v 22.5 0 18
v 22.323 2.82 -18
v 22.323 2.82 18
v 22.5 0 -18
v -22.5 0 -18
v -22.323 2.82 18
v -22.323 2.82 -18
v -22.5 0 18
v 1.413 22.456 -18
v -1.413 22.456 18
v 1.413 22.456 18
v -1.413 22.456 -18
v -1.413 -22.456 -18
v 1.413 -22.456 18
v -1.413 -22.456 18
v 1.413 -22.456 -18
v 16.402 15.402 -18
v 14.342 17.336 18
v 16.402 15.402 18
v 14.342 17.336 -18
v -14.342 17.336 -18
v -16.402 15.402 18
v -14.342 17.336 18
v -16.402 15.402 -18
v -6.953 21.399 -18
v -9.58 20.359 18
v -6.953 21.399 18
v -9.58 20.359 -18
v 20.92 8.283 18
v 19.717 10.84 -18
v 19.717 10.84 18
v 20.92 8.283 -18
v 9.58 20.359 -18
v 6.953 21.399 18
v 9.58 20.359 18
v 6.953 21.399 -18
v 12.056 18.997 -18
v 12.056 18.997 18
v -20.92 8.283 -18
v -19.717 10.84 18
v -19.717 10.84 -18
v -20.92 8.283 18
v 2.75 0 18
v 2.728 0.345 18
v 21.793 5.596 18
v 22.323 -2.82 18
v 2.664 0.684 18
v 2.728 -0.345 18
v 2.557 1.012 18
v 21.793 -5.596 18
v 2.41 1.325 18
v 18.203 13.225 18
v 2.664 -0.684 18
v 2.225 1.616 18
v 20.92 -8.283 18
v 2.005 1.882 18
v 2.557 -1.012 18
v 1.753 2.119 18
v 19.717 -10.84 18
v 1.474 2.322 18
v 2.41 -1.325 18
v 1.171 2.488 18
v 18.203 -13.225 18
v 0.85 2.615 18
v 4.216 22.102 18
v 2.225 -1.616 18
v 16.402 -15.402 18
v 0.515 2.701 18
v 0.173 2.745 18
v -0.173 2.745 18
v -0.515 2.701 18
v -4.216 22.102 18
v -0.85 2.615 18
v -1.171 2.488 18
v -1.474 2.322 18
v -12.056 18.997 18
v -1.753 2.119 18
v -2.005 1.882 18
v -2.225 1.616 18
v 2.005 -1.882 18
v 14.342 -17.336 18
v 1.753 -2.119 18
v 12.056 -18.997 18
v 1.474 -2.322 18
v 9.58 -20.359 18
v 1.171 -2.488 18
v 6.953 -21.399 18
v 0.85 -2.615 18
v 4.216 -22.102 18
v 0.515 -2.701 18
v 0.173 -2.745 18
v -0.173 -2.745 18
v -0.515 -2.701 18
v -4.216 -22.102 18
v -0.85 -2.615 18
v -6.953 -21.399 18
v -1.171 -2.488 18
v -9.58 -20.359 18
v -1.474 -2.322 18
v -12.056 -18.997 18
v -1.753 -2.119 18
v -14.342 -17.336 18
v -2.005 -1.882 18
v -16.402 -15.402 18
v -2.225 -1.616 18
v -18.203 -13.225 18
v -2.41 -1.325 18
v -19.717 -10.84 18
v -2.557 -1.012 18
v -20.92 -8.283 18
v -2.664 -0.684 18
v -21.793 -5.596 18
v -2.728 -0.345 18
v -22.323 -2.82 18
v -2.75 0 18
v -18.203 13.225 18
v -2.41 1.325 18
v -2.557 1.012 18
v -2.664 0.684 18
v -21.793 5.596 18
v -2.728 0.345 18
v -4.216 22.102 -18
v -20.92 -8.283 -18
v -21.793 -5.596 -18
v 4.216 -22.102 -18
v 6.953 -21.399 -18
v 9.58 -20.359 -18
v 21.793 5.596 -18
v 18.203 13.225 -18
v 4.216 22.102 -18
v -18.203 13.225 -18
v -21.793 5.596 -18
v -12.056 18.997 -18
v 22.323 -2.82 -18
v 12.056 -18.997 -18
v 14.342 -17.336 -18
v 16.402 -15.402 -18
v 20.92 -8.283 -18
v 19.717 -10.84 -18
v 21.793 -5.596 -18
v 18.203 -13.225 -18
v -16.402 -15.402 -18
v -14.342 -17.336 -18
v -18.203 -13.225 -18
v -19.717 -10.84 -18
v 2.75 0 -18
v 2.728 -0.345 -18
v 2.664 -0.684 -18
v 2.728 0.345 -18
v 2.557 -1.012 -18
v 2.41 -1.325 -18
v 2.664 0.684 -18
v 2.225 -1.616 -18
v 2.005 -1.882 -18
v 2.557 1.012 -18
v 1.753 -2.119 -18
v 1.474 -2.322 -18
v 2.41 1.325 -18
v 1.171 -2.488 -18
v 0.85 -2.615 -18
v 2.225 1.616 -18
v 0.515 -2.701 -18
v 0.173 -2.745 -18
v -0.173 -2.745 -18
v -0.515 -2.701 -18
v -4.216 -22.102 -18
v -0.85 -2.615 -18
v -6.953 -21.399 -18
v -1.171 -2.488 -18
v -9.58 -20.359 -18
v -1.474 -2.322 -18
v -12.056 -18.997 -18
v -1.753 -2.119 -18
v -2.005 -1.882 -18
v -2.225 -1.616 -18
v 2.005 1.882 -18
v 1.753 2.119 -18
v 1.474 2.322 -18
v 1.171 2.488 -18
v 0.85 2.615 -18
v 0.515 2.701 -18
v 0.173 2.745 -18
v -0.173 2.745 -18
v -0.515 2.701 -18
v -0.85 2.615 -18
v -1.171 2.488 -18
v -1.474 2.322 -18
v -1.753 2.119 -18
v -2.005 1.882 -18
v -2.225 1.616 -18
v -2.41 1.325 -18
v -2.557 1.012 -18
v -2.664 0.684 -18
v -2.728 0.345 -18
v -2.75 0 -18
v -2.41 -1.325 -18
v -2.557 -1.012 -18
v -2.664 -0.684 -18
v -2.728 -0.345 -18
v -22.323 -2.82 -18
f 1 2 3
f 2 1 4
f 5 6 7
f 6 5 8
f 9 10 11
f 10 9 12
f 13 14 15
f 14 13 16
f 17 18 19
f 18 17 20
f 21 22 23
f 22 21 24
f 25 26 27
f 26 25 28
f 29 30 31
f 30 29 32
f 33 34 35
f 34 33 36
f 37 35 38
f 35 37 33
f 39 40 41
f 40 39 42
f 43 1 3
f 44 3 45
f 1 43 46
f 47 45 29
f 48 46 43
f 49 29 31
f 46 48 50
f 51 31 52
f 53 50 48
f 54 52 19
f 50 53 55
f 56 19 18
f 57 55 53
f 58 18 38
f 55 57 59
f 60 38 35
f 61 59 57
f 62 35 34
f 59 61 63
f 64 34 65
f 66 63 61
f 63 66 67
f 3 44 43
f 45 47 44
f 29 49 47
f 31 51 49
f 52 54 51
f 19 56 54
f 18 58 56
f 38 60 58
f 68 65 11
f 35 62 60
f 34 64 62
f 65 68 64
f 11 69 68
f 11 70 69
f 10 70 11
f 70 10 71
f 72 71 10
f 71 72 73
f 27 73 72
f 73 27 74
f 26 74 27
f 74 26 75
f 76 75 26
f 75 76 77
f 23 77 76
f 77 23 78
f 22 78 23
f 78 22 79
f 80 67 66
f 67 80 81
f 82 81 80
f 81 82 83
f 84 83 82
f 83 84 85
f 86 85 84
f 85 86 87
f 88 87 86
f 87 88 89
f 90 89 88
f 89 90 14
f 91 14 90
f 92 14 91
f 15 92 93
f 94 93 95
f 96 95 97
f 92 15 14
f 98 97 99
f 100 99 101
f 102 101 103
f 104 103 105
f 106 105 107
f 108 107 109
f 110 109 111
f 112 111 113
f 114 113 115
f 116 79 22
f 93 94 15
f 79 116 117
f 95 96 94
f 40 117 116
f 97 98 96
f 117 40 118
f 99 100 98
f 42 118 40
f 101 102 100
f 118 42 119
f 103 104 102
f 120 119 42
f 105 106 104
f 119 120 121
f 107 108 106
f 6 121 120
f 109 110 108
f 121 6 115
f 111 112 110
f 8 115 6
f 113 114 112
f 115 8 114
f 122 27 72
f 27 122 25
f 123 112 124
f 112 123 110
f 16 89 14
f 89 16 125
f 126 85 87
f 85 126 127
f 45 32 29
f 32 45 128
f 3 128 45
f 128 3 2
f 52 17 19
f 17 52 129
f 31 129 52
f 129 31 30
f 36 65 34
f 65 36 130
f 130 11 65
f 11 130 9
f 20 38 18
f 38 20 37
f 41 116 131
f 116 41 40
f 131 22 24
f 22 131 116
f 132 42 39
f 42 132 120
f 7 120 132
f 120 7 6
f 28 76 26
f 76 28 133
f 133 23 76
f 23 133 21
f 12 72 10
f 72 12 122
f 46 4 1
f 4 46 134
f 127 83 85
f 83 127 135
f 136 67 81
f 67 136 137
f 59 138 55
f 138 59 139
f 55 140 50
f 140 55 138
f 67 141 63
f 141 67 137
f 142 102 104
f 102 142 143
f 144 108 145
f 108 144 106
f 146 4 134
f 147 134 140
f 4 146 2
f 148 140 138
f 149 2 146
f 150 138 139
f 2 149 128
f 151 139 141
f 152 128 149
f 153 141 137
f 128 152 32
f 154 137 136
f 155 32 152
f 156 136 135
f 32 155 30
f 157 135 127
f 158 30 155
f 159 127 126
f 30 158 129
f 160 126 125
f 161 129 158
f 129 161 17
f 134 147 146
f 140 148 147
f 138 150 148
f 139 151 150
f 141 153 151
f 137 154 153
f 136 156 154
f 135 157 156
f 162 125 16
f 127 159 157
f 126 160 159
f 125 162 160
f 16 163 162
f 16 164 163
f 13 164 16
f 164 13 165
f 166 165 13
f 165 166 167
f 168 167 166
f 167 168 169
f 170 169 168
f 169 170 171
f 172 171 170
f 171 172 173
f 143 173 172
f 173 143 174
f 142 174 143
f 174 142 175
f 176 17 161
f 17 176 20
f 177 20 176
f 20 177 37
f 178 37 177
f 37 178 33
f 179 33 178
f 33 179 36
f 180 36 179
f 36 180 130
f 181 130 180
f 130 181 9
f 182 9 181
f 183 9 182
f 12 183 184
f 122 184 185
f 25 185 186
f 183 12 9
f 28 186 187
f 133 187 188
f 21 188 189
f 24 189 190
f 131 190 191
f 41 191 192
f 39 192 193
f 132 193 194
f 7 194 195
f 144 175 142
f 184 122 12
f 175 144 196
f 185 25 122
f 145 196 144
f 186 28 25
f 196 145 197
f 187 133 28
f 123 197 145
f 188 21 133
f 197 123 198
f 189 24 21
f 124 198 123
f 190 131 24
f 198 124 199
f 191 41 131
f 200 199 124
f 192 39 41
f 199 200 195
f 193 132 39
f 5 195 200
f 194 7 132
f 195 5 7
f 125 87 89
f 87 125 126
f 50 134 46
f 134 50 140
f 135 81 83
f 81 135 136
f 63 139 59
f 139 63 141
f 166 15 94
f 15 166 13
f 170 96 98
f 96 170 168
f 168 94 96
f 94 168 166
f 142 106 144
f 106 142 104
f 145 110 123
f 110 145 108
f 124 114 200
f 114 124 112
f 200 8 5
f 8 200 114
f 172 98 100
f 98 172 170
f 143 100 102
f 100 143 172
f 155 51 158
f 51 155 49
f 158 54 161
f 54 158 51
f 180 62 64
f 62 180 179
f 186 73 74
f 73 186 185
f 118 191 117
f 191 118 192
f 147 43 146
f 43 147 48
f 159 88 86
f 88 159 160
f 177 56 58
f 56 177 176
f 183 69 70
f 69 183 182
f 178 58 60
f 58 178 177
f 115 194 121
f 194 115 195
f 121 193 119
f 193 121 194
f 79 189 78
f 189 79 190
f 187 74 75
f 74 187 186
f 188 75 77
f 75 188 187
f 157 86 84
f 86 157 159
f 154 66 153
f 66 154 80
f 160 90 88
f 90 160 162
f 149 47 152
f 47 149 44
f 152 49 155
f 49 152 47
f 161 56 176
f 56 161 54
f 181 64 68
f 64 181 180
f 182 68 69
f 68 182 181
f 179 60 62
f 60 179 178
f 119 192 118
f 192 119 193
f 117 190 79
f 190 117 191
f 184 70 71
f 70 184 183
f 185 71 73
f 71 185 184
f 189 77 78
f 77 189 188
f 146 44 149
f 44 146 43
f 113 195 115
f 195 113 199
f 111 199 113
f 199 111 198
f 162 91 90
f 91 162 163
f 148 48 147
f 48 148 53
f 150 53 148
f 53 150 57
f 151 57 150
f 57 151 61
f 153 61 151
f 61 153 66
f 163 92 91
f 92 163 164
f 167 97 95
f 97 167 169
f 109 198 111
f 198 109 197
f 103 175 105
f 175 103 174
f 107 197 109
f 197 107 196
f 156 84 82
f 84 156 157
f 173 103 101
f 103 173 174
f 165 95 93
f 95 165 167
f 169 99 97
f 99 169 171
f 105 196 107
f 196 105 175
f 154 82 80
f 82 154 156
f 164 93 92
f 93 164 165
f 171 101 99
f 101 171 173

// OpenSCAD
$fn = 50;


difference() {
	union() {
		translate(v = [0, 0, -18.0000000000]) {
			cylinder(h = 36, r = 22.5000000000);
		}
	}
	union() {
		translate(v = [0, 0, -100.0000000000]) {
			cylinder(h = 200, r = 2.7500000000);
		}
	}
}
